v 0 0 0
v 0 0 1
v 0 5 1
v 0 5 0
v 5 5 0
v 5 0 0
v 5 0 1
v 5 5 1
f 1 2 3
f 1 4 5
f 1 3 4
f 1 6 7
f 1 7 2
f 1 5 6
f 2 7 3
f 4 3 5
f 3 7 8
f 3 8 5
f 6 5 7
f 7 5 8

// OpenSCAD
/* Warning, this is a very basic generator with a lot of approximation 
input data : [VFLGA, 3YW, 5x5mm, 24, , A, C04-00577A]
generated by com.zoubworld.electronics.cad.model3d.Basic
Date : Sun Feb 15 10:50:49 CET 2026
*/

//body
color("black")
translate([0,0,0])
cube([5.0,5.0,1.0], center=false);
